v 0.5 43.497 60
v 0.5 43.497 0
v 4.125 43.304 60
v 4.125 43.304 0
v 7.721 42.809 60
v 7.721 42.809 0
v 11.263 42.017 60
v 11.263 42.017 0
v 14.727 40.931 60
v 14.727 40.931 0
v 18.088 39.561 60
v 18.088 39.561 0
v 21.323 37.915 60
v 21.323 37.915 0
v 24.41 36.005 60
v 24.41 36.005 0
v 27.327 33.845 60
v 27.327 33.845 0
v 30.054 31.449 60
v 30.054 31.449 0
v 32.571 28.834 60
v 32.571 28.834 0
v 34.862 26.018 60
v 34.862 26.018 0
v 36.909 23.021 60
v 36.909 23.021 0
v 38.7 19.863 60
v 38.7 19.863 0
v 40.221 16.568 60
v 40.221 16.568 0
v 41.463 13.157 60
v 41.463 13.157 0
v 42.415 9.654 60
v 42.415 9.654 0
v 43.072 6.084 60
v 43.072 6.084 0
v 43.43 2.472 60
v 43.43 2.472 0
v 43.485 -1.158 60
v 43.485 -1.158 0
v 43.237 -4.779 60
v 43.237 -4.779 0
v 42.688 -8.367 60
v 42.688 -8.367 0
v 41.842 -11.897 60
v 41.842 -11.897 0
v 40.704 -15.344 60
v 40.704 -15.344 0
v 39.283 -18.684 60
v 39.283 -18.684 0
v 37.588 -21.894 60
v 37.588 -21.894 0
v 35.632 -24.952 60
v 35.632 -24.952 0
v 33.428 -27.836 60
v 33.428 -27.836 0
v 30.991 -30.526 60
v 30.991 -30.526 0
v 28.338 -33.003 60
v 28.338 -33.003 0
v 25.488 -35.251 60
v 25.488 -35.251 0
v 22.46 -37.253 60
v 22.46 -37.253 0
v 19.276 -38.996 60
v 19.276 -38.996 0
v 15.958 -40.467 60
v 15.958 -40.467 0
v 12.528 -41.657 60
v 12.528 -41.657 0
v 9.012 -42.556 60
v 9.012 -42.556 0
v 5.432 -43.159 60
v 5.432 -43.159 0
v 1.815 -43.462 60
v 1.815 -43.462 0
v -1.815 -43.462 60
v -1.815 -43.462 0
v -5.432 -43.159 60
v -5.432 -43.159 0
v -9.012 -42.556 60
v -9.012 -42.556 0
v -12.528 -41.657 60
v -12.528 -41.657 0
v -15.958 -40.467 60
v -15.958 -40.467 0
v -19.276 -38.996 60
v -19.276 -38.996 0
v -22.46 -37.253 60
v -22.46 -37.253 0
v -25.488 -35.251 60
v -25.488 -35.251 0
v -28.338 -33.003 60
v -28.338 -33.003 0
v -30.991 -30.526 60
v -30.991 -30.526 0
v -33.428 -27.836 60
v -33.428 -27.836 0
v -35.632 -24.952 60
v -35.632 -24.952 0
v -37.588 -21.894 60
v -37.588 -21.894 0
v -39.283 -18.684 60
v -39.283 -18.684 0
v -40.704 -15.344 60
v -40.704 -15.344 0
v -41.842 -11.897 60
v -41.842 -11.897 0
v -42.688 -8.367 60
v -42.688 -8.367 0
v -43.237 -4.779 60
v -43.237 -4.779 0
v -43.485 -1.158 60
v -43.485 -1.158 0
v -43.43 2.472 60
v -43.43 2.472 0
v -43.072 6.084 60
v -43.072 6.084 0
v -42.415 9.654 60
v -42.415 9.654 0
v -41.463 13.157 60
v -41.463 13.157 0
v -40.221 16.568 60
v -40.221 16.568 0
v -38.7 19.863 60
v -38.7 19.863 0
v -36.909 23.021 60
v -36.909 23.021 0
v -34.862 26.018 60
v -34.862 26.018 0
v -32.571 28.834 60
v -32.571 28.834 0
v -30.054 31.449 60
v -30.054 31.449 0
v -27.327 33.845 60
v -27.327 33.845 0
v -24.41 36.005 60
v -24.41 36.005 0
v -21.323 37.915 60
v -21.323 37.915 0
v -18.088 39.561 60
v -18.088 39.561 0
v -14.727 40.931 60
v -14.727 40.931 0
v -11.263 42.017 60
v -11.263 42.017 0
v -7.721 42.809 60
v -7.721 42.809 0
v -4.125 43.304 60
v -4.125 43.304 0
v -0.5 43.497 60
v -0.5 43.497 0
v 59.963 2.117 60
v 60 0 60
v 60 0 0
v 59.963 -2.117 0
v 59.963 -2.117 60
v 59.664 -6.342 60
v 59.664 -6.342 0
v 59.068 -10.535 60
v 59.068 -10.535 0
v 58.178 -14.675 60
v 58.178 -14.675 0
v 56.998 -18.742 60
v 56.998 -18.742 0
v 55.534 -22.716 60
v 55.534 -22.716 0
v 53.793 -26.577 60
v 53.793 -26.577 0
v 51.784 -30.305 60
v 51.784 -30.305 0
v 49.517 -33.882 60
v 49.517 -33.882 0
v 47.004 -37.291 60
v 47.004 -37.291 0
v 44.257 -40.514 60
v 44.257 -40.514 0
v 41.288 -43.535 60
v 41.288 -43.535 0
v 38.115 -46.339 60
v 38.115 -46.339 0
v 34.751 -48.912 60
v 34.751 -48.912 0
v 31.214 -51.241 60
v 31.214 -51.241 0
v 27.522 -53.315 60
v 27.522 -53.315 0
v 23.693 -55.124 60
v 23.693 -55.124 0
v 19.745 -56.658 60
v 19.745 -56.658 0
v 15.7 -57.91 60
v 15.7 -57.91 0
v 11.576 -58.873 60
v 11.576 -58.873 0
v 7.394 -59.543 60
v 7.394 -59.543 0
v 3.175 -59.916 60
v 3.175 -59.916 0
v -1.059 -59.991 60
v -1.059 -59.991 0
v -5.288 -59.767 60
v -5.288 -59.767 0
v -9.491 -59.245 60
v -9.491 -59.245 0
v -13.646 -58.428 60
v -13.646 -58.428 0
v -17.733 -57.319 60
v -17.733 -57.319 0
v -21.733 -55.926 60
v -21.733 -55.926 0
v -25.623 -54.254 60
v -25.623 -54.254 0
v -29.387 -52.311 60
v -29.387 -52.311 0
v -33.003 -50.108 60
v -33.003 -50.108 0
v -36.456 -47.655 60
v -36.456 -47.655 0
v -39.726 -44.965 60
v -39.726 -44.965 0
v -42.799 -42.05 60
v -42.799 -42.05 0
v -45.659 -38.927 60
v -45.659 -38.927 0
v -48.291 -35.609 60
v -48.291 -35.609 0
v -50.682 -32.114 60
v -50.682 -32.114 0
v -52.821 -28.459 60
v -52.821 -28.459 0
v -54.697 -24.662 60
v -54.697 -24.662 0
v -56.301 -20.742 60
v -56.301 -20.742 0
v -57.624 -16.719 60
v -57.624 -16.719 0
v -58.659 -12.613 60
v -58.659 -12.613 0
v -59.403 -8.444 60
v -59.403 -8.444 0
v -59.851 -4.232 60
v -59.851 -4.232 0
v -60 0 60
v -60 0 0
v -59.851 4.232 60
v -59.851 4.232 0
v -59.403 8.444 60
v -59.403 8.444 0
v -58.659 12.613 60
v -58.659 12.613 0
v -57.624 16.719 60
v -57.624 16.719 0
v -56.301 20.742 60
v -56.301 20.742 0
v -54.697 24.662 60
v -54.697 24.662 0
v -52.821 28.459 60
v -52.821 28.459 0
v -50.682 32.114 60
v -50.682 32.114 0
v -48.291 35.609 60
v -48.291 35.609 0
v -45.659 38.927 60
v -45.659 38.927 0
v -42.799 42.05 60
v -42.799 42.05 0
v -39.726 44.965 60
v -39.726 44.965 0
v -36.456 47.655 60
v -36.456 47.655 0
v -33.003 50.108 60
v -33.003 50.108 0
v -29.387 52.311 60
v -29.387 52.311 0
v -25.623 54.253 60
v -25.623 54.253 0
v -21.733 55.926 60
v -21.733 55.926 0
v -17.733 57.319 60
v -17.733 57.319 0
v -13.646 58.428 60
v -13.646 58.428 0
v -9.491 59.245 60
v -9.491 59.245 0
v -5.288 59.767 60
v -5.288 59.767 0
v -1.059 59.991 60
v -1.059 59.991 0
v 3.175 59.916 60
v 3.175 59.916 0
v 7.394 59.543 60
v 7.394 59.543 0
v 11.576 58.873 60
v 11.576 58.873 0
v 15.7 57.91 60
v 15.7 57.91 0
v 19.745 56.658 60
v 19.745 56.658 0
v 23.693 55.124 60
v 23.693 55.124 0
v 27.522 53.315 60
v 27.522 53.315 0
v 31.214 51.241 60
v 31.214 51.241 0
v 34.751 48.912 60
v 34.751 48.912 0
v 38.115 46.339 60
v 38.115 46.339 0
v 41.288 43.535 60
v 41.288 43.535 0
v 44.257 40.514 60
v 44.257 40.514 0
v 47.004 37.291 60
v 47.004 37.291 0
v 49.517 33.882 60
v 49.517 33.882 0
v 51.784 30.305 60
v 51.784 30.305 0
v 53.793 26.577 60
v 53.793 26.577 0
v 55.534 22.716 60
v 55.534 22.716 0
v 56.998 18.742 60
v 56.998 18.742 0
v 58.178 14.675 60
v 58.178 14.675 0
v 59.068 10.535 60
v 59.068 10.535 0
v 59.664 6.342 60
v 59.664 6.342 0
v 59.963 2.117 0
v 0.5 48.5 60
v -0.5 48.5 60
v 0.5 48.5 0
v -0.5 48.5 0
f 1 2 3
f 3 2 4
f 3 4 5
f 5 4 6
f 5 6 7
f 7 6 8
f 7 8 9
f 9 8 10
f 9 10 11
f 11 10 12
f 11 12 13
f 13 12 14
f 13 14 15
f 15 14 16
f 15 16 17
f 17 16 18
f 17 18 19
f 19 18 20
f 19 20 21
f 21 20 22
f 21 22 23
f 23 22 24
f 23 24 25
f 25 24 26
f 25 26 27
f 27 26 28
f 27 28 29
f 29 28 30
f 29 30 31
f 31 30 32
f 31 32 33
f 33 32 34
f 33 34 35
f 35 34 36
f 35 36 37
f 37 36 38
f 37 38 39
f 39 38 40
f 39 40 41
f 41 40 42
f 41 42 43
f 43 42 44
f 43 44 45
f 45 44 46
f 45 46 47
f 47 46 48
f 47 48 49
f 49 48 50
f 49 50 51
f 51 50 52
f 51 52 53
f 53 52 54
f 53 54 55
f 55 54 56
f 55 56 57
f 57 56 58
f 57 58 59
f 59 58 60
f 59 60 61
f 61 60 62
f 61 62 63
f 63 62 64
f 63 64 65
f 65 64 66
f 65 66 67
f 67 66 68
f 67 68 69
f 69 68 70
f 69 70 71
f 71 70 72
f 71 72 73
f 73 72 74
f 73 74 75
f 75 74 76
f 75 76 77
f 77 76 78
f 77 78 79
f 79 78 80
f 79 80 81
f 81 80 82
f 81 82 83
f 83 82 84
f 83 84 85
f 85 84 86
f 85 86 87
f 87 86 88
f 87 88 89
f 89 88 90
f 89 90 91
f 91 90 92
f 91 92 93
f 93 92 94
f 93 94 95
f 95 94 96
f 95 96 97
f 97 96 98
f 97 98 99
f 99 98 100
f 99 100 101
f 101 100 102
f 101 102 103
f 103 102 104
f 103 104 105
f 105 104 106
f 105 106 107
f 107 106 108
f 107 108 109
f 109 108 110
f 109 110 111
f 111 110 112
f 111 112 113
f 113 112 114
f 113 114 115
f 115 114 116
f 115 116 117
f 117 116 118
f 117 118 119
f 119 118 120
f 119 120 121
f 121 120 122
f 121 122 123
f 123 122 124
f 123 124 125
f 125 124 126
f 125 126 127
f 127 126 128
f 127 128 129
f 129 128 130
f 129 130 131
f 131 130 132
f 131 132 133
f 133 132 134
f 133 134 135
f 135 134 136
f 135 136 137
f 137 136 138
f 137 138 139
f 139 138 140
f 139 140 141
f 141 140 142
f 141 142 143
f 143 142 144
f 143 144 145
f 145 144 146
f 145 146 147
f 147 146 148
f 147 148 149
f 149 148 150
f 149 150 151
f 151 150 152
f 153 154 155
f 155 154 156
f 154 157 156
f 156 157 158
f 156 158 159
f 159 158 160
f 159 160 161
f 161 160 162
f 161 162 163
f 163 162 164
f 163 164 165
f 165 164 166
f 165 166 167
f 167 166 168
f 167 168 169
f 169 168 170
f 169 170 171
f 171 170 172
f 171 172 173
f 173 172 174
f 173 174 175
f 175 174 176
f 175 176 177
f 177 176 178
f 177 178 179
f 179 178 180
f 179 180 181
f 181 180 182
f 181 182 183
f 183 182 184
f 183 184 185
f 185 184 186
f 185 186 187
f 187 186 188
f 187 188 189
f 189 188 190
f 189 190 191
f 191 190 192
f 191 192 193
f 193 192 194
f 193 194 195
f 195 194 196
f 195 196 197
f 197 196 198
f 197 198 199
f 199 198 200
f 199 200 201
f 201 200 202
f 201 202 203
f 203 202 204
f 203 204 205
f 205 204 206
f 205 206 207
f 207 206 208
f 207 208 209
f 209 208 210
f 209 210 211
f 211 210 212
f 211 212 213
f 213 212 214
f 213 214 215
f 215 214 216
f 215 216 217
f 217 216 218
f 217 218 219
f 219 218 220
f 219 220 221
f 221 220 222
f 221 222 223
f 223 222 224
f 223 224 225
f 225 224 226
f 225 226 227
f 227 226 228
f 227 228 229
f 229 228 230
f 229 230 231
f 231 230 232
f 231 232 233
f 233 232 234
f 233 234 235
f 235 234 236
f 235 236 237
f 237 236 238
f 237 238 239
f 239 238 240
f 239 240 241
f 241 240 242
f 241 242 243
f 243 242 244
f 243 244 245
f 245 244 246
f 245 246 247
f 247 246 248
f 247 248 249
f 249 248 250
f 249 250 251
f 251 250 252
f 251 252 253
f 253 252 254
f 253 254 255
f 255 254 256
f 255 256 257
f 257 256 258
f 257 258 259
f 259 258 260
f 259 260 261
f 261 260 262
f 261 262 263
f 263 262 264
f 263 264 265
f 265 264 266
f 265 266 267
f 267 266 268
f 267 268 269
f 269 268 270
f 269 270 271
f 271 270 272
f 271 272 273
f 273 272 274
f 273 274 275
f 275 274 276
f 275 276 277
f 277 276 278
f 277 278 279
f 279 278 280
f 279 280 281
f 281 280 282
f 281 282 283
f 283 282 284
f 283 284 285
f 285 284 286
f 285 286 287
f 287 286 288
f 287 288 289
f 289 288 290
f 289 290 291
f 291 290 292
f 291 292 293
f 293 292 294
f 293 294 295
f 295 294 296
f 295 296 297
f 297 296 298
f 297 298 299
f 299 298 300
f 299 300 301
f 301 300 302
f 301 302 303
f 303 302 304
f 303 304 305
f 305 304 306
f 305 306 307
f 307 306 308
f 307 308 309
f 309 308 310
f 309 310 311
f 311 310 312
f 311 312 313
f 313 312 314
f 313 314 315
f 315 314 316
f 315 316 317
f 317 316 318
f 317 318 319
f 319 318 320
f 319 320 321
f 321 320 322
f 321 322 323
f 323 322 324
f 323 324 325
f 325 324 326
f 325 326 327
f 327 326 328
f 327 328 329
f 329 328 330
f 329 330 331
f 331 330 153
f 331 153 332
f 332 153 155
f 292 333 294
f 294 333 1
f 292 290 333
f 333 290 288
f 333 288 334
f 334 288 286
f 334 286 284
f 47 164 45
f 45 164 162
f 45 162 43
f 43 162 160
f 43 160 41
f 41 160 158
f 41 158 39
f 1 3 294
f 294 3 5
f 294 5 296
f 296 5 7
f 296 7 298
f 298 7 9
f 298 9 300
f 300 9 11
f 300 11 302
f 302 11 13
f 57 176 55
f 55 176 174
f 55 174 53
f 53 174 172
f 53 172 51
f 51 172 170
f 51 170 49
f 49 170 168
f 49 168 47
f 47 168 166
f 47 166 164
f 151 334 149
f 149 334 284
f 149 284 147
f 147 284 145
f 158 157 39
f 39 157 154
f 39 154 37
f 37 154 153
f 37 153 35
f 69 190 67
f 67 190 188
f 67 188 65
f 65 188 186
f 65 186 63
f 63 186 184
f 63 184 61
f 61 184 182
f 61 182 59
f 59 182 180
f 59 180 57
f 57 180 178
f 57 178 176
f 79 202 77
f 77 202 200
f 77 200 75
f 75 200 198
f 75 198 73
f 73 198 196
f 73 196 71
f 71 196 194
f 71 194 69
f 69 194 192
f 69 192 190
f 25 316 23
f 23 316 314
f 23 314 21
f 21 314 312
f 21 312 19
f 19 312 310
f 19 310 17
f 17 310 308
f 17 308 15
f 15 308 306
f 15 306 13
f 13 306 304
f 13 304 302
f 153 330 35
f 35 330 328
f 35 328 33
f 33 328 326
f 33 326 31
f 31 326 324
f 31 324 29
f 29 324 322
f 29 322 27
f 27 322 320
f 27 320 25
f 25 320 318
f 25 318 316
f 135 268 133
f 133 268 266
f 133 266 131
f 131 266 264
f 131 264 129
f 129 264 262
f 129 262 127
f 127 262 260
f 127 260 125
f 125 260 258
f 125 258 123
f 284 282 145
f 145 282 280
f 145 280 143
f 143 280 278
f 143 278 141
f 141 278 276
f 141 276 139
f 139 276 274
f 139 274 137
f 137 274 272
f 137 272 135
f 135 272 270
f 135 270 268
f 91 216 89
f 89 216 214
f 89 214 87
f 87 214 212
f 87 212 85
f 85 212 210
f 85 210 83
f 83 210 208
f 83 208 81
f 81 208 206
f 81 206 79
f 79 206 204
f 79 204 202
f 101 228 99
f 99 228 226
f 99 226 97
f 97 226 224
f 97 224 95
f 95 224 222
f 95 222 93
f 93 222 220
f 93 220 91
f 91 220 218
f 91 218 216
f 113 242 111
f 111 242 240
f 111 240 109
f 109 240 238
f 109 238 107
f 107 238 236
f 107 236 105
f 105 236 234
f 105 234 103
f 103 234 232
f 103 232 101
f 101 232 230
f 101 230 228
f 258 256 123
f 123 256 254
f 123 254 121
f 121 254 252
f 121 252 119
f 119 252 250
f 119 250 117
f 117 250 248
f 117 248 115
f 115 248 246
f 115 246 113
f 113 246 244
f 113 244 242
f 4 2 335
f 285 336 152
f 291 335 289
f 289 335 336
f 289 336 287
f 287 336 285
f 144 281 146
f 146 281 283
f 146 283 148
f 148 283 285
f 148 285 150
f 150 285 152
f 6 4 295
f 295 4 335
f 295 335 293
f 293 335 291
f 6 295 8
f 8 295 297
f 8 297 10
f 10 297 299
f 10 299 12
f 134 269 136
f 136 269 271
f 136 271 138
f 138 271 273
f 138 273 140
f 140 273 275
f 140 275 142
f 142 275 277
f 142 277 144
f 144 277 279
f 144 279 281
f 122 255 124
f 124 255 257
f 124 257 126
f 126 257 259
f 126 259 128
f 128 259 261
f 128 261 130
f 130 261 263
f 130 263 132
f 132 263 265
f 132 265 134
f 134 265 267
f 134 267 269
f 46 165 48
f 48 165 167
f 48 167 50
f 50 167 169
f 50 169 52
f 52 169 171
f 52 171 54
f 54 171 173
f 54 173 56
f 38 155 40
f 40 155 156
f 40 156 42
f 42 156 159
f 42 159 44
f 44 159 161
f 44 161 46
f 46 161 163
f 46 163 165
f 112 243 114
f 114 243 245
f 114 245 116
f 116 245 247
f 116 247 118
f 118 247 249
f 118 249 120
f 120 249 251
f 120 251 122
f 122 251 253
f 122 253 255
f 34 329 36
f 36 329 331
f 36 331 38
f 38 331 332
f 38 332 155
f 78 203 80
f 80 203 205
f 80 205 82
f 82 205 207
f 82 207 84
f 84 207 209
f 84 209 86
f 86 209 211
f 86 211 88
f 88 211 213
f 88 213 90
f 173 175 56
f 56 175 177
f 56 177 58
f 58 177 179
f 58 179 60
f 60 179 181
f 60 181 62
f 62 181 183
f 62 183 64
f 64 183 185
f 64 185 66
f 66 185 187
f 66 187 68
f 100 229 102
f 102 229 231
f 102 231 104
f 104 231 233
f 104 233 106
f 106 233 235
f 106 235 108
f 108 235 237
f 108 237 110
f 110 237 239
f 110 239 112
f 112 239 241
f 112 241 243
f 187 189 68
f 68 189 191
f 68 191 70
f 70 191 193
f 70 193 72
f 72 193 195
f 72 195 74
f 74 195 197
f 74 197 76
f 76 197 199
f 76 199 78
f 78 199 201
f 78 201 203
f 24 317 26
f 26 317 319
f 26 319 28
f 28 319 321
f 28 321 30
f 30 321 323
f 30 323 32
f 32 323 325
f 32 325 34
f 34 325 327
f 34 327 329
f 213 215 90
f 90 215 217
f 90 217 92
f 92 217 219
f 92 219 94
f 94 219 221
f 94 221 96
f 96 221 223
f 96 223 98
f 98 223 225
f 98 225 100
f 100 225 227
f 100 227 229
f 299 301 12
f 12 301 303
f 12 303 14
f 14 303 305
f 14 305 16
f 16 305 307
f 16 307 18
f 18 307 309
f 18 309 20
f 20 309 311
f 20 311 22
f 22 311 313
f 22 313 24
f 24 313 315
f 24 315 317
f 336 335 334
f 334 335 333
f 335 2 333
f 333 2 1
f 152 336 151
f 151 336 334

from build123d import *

# Parameters (mm, degrees)
SKETCH1_R        = 60
SKETCH1_R_2      = 43.5
EXTRUSION1_DEPTH = 60
EXTRUSION3_START = -60
EXTRUSION3_DEPTH = 60


with BuildPart() as part:
    # Sketch1 → Extrusion1 (new body)
    with BuildSketch(Plane.XY):
        Circle(SKETCH1_R)
        Circle(SKETCH1_R_2, mode=Mode.SUBTRACT)
    extrude(amount=EXTRUSION1_DEPTH)

    # Sketch3 → Extrusion3 (cut)
    with BuildSketch(Plane.XY.offset(60).offset(EXTRUSION3_START)):
        with BuildLine():
            Line((-0.5, 48.5), (-0.5, 43.497126342))
            ThreePointArc((-0.5, 43.497126342), (0, 43.5), (0.5, 43.497126342))
            Line((0.5, 43.497126342), (0.5, 48.5))
            Line((0.5, 48.5), (-0.5, 48.5))
        make_face()
    extrude(amount=EXTRUSION3_DEPTH, mode=Mode.SUBTRACT)


solid = part.part
